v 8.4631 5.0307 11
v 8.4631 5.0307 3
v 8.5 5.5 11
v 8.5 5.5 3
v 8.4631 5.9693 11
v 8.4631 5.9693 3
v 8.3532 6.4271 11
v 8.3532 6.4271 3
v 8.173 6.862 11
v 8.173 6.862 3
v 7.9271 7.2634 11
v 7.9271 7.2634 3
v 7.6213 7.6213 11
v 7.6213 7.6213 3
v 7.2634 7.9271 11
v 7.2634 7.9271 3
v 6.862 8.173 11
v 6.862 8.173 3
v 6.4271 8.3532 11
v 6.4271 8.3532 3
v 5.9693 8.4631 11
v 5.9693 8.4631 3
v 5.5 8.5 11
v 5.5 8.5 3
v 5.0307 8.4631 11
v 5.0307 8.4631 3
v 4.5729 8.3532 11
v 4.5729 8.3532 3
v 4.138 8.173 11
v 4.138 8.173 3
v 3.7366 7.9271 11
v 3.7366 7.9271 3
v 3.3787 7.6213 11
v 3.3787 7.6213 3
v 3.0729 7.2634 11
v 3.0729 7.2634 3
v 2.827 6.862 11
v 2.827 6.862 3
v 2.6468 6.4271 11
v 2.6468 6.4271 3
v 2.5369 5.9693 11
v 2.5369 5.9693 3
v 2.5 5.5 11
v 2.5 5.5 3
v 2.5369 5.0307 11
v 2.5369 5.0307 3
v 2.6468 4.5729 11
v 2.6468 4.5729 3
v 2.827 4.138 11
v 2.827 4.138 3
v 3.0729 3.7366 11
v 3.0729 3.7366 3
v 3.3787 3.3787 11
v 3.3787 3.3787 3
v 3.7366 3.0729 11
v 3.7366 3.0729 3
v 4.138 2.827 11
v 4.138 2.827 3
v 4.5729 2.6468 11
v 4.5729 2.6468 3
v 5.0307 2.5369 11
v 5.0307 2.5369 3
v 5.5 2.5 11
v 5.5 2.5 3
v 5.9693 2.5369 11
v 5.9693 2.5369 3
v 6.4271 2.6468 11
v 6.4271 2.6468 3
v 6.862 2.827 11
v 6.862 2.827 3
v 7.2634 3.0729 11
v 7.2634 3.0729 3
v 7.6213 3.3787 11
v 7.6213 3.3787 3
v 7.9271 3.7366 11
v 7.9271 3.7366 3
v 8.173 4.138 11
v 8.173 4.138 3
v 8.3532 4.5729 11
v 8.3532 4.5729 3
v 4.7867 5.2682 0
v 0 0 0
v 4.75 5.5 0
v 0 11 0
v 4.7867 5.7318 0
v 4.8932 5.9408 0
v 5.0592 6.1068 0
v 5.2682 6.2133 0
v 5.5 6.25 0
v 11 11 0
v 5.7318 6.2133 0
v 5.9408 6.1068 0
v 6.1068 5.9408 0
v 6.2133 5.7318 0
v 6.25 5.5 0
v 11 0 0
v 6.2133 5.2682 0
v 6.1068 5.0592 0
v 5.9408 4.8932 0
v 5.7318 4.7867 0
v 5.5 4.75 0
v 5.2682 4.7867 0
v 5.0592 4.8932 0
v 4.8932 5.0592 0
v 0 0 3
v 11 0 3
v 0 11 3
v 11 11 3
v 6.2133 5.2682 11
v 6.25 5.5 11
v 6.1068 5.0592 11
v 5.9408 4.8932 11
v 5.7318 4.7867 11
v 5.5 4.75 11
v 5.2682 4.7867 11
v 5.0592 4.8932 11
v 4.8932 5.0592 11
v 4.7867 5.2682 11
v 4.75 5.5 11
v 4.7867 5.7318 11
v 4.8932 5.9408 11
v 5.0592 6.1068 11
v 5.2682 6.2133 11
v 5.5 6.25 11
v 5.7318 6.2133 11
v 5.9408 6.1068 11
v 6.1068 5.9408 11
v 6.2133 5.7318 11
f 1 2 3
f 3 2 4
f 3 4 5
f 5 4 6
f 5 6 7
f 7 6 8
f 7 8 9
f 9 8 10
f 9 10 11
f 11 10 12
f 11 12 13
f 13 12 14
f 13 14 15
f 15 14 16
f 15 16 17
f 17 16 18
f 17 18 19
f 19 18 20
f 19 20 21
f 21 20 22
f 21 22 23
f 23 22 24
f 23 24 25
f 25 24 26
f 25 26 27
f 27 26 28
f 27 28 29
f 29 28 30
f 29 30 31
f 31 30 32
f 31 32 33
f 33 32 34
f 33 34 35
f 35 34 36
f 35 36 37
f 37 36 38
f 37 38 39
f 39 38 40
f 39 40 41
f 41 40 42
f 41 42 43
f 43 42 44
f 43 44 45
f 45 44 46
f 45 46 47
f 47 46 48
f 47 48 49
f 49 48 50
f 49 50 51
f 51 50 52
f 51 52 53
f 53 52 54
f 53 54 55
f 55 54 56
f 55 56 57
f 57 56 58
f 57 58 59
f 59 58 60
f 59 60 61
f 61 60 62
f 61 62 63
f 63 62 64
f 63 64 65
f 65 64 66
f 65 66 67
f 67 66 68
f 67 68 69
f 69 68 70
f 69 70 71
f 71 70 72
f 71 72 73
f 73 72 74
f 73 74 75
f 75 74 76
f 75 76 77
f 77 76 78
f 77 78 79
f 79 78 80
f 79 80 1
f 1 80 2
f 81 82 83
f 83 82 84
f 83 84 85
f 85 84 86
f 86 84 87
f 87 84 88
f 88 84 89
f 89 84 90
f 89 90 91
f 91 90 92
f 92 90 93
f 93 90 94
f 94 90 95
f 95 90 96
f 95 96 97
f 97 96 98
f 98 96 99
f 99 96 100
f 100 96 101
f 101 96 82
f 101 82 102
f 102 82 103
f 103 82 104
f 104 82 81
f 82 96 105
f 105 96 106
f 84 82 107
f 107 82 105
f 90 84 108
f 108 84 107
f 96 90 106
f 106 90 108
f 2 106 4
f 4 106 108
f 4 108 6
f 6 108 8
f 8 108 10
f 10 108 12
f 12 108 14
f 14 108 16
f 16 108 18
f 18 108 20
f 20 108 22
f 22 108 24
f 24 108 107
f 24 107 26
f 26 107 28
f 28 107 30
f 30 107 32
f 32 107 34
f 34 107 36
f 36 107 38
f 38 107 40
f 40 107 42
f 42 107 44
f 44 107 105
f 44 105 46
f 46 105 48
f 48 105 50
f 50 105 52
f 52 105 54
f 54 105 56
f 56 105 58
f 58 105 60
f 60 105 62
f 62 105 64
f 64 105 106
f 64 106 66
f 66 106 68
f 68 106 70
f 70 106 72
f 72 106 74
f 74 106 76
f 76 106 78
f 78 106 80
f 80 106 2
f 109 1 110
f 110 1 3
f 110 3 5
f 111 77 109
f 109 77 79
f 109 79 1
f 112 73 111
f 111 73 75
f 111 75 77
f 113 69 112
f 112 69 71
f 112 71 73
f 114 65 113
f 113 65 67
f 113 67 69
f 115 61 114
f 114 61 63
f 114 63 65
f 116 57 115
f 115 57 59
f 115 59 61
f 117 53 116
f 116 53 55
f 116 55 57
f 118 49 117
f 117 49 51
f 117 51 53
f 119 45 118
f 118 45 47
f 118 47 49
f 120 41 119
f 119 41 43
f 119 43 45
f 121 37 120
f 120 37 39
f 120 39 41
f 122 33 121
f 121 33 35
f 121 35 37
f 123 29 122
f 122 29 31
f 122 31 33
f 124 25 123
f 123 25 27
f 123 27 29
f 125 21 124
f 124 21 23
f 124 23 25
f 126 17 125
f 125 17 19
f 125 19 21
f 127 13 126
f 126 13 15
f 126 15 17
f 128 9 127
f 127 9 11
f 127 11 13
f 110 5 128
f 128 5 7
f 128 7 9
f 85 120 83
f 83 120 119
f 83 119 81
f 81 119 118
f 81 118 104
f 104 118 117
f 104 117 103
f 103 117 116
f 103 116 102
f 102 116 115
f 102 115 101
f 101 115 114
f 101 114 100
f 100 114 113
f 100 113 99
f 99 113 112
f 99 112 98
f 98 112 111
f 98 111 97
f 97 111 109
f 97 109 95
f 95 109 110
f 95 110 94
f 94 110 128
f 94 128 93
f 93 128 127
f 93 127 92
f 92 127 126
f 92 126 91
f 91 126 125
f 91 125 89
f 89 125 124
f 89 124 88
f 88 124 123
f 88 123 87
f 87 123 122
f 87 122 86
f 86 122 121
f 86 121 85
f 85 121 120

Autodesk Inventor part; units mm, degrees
ref_plane "YZ Plane" through (0, 0, 0) normal (1, 0, 0) x (0, 1, 0)
ref_plane "XZ Plane" through (0, 0, 0) normal (0, 1, 0) x (-1, 0, 0)
ref_plane "XY Plane" through (0, 0, 0) normal (0, 0, 1) x (1, 0, 0)
sketch "Náčrt1" plane through (0, 0, 0) normal (0, 0, 1) x (1, 0, 0)
  line L0 (0, 0) -> (11, 0)
  line L1 (11, 0) -> (11, 11)
  line L2 (11, 11) -> (0, 11)
  line L3 (0, 11) -> (0, 0)
  dimension "d0" = 11
  dimension "d1" = 11
extrude "Vysunutí1" add sketch "Náčrt1" along normal blind 3
sketch "Náčrt2" plane through (0, 0, 3) normal (0, 0, 1) x (1, 0, 0)
  circle A0 centre (5.5, 5.5) radius 3
  line L0 (0, 0) -> (11, 0) projected
  point P0 (5.5, 0)
  dimension "d4" = 6
  dimension "d5" = 5.5
extrude "Vysunutí2" add sketch "Náčrt2" along normal blind 8
sketch "Náčrt3" plane through (5.5, 5.5, 11) normal (0, 0, 1) x (1, 0, 0)
  circle A0 centre (0, 0) radius 0.75
  point P0 (-5.5, -5.5)
  dimension "d8" = 1.5
extrude "Vysunutí3" cut sketch "Náčrt3" against normal through all
properties part number "oparil"
